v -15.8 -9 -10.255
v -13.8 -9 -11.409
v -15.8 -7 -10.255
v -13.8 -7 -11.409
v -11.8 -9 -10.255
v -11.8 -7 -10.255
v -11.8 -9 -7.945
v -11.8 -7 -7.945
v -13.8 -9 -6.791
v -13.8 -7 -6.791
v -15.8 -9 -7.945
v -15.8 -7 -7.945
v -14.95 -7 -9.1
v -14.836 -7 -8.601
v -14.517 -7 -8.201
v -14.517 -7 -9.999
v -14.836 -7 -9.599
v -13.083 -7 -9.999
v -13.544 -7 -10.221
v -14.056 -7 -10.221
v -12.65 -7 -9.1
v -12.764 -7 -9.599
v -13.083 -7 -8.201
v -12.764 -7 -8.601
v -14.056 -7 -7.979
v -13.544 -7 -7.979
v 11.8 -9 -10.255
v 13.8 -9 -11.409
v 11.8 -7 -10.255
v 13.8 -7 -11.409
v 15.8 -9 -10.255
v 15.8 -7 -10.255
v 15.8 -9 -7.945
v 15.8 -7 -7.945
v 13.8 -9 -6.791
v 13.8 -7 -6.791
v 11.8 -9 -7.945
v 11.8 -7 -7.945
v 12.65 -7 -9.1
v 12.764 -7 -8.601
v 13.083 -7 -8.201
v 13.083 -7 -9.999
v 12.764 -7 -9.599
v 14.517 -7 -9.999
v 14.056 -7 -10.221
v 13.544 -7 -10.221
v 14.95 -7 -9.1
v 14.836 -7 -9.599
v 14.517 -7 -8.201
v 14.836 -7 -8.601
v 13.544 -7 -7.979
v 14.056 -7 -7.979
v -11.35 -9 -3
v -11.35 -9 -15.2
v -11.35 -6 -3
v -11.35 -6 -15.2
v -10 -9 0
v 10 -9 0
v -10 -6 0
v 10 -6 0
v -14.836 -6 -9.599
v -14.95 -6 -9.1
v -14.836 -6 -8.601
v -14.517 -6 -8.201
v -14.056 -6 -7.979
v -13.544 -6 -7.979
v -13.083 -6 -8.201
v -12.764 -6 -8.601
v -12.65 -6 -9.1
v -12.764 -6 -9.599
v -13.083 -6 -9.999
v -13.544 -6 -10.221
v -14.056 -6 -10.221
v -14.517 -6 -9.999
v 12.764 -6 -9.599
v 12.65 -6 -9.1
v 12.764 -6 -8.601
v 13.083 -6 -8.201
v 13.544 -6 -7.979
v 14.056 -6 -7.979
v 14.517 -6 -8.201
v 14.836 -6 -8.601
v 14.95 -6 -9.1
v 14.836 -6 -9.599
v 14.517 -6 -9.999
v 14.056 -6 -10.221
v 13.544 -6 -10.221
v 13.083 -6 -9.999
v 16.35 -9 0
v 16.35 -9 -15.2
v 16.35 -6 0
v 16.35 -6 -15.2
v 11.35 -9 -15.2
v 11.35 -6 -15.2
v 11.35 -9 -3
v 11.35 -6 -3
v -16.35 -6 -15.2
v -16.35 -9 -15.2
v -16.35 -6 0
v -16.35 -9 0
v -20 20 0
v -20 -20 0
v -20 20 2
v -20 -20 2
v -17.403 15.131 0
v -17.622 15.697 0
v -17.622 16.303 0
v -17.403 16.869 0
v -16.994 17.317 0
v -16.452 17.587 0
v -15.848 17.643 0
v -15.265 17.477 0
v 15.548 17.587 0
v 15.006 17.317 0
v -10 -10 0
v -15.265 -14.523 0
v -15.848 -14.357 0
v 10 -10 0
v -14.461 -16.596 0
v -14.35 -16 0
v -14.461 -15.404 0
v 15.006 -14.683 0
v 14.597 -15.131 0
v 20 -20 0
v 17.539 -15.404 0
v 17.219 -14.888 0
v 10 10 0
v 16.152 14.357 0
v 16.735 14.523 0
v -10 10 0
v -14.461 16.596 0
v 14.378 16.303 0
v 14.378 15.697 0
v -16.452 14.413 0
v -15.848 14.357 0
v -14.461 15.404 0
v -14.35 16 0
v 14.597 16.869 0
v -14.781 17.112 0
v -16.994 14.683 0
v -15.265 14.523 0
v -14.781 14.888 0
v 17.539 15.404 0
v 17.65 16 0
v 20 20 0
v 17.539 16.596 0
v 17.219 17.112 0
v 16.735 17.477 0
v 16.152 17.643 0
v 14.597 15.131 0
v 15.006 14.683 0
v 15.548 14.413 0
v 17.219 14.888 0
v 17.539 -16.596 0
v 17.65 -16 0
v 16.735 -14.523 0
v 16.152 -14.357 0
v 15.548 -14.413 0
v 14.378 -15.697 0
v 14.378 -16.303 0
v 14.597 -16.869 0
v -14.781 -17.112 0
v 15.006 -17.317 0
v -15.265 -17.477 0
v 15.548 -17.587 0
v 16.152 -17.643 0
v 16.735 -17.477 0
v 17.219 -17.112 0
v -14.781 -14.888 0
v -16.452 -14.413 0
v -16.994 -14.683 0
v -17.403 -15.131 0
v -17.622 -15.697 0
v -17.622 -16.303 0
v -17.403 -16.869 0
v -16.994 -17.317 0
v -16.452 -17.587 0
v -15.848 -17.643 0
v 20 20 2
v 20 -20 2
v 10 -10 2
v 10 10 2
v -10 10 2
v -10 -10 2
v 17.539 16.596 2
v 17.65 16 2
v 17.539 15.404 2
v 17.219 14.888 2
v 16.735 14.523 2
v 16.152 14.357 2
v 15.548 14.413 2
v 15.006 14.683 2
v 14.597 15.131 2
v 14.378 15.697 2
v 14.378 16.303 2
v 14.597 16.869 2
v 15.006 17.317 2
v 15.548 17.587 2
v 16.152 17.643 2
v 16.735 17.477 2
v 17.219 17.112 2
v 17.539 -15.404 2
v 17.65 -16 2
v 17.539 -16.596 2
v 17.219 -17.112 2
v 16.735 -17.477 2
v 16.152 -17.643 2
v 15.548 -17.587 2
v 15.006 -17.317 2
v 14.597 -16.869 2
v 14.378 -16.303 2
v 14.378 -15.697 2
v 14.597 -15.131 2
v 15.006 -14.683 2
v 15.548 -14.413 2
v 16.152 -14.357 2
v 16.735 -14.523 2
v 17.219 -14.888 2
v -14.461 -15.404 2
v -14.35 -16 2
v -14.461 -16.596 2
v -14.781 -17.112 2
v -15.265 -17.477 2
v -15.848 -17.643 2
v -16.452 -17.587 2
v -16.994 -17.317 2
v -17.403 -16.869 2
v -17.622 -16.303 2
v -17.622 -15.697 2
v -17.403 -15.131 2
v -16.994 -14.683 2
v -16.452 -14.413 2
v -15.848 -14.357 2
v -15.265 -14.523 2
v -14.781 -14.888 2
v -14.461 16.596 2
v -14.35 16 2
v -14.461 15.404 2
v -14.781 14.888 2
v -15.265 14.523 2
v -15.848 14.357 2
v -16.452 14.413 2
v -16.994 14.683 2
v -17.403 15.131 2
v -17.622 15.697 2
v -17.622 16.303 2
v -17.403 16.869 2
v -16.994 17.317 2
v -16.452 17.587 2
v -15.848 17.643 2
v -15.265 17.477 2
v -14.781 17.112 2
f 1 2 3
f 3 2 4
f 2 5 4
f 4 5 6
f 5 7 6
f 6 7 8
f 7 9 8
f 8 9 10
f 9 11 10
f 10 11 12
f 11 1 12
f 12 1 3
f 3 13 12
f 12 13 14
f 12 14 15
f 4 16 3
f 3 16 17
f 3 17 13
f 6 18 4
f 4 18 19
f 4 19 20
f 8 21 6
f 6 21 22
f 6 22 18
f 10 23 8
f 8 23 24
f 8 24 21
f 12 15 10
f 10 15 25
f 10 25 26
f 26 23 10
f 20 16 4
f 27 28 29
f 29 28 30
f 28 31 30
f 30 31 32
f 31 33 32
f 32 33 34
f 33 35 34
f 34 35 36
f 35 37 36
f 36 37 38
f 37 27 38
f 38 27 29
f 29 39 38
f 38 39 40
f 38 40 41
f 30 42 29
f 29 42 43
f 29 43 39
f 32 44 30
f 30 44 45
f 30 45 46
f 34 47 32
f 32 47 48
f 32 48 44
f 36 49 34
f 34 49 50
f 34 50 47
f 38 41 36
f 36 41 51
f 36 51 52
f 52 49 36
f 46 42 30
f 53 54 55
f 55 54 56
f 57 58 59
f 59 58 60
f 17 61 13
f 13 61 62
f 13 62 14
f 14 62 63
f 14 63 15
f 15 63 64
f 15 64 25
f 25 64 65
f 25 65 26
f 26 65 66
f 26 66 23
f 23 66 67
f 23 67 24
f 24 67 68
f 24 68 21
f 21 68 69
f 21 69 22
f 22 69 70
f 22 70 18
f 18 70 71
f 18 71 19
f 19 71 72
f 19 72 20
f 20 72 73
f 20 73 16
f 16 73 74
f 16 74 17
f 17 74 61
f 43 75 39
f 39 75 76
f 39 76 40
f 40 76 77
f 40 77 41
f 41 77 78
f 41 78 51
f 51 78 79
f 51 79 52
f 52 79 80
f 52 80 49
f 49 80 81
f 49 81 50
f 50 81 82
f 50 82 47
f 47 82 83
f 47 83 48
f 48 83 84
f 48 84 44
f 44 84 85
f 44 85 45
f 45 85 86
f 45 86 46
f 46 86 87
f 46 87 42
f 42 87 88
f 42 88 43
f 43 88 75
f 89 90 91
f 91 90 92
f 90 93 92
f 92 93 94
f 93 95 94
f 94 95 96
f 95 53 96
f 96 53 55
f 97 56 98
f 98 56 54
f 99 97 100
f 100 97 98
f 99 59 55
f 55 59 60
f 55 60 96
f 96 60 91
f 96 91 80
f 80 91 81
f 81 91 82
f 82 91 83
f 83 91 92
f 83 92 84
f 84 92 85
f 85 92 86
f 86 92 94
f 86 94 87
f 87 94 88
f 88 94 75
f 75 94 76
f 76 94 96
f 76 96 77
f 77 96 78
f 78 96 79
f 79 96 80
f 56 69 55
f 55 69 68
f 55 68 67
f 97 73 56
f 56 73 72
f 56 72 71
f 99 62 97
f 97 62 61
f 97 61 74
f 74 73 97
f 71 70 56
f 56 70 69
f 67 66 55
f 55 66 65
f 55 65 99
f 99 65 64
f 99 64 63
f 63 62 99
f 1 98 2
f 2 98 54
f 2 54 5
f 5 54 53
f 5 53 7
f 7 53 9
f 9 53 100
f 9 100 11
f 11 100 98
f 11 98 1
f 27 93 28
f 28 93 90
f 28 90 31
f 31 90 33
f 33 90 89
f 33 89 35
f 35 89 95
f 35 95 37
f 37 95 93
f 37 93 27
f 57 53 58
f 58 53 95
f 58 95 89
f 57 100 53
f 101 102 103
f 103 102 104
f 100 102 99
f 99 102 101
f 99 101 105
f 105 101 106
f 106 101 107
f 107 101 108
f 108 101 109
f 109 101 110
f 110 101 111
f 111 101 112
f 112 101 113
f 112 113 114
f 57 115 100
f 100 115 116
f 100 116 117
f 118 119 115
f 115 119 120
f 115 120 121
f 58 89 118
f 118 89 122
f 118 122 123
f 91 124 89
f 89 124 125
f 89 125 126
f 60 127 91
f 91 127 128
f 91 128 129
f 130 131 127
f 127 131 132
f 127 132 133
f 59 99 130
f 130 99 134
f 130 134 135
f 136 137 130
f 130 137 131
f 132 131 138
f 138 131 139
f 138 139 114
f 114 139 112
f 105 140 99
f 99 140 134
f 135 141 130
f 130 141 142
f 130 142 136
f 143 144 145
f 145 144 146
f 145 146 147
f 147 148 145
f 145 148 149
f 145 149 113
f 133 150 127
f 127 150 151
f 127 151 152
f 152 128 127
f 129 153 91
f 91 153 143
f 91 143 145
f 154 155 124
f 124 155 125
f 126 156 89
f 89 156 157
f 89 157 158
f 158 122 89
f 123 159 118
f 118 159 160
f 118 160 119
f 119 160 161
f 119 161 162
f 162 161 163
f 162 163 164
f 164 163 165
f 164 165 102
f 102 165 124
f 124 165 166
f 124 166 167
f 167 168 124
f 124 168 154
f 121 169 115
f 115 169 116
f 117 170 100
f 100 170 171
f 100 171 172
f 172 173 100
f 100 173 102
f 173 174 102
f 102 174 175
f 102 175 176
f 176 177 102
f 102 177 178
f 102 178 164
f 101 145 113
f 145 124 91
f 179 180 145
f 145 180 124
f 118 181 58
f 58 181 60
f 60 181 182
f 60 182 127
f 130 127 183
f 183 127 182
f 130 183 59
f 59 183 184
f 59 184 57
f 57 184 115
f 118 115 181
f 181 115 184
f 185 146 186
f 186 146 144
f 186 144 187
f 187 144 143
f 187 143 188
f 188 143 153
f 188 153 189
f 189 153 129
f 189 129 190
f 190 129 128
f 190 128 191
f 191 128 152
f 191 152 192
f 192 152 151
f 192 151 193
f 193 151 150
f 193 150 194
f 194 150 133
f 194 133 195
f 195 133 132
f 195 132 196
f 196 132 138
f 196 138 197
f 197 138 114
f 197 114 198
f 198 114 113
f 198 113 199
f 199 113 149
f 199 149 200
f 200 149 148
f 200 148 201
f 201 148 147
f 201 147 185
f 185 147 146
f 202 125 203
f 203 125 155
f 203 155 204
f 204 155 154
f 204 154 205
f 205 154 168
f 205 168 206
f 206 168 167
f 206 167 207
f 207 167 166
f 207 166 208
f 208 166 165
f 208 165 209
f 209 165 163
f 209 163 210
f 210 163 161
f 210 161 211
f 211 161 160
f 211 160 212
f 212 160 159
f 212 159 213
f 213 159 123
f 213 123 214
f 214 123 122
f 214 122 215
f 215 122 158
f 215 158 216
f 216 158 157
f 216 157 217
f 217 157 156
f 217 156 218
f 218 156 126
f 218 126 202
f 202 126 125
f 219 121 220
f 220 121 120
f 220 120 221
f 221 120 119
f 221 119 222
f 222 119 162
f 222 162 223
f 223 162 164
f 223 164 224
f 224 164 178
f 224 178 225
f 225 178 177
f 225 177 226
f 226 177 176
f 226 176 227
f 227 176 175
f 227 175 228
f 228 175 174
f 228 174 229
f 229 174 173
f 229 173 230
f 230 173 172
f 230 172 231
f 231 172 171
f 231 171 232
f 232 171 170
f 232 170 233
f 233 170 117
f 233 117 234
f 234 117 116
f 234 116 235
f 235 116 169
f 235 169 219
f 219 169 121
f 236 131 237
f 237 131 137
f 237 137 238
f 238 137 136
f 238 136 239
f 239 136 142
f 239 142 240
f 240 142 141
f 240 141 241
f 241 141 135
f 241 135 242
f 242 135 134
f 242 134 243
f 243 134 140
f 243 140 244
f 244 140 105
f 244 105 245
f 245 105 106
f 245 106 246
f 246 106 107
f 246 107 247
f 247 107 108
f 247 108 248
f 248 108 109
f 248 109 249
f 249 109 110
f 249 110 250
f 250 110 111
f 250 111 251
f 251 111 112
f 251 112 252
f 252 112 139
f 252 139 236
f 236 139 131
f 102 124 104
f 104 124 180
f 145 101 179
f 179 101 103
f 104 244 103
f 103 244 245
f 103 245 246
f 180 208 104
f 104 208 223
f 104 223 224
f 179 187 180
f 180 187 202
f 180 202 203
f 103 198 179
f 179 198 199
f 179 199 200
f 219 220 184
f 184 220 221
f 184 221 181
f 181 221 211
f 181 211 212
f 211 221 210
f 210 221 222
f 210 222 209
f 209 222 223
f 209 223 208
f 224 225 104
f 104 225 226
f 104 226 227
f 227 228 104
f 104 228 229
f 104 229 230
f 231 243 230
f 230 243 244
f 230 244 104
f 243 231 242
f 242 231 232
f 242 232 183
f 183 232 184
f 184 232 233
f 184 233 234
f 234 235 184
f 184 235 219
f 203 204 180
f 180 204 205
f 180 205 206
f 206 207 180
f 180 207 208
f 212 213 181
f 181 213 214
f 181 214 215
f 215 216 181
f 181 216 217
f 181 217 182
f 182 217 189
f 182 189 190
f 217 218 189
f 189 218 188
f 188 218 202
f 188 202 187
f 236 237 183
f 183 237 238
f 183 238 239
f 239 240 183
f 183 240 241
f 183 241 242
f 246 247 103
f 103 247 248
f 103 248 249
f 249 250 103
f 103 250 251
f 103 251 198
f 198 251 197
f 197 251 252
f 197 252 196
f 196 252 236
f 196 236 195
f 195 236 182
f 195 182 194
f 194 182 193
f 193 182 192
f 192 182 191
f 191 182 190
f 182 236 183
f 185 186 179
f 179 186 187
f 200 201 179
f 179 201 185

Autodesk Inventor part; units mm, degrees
ref_plane "YZ Plane" through (0, 0, 0) normal (1, 0, 0) x (0, 1, 0)
ref_plane "XY Plane" through (0, 0, 0) normal (0, 0, 1) x (1, 0, 0)
sketch "草圖22" plane through (0, 0, 0) normal (0, 0, 1) x (1, 0, 0)
  line L0 (-20, 20) -> (20, 20)
  line L1 (20, 20) -> (20, -20)
  line L2 (20, -20) -> (-20, -20)
  line L3 (-20, -20) -> (-20, 20)
  line L4 (0, -12.2) -> (0, 0) projected
  line L5 (-20, 20) -> (20, -20) construction
  line L6 (20, 20) -> (-20, -20) construction
  line L7 (-16, 16) -> (16, 16) construction
  line L8 (16, 16) -> (16, -16) construction
  line L9 (16, -16) -> (-16, -16) construction
  line L10 (-16, -16) -> (-16, 16) construction
  line L11 (-16, 16) -> (16, -16) construction
  line L12 (16, 16) -> (-16, -16) construction
  circle A0 centre (-16, 16) radius 1.65
  line L13 (20, 20) -> (-10, 20)
  line L14 (-10, 20) -> (-10, -10)
  line L15 (-10, -10) -> (20, -10)
  line L16 (20, -10) -> (20, 20)
  circle A1 centre (-16, -16) radius 1.65
  circle A2 centre (16, 16) radius 1.65
  circle A3 centre (16, -16) radius 1.65
  line L17 (-10, 10) -> (10, 10)
  line L18 (10, 10) -> (10, -10)
  line L19 (10, -10) -> (-10, -10)
  line L20 (-10, -10) -> (-10, 10)
  line L21 (-20, -20) -> (20, -20)
  line L22 (20, -20) -> (20, -33.437)
  line L23 (20, -33.437) -> (-20, -33.437)
  line L24 (-20, -33.437) -> (-20, -20)
  point P0 (20, -10)
  point P1 (10, -10)
  point P2 (-10, 10)
  dimension "d118" = 40
  dimension "d119" = 16
  dimension "d120" = 3.3
  dimension "d121" = 10
  dimension "d124" = 32
  dimension "d127" = 32
extrude "擠出19" add sketch "草圖22" along normal blind 2 contours L0 L14 L15 L1 L2 L3 | L0 L1 L15 L18 L17 L14
ref_plane "工作平面5" through (0, -6, 0) normal (0, 1, 0) x (-1, 0, 0)
sketch "草圖31" plane through (0, 0, 0) normal (0, 1, 0) x (-1, 0, 0)
  line L0 (-16.35, 0) -> (16.35, 0)
  line L1 (16.35, 0) -> (16.35, -3)
  line L2 (16.35, -3) -> (-16.35, -3)
  line L3 (-16.35, -3) -> (-16.35, 0)
  line L4 (-16.35, 0) -> (16.35, -3) construction
  line L5 (16.35, 0) -> (-16.35, -3) construction
  line L6 (11.35, -3) -> (16.35, -3)
  line L7 (16.35, -3) -> (16.35, -15.2)
  line L8 (16.35, -15.2) -> (11.35, -15.2)
  line L9 (11.35, -15.2) -> (11.35, -3)
  line L10 (11.35, -3) -> (16.35, -15.2) construction
  line L11 (16.35, -3) -> (11.35, -15.2) construction
  line L12 (-11.35, -3) -> (-16.35, -3)
  line L13 (-16.35, -3) -> (-16.35, -15.2)
  line L14 (-16.35, -15.2) -> (-11.35, -15.2)
  line L15 (-11.35, -15.2) -> (-11.35, -3)
  line L16 (-11.35, -3) -> (-16.35, -15.2) construction
  line L17 (-16.35, -3) -> (-11.35, -15.2) construction
  line L18 (0, 0) -> (0, 15.4222) construction
  line L19 (-20, 0) -> (20, 0) construction
  circle A0 centre (13.8, -9.1) radius 1.15
  circle A1 centre (-13.8, -9.1) radius 1.15
  point P0 (0, -1.5)
  point P1 (13.85, -9.1)
  point P2 (-13.85, -9.1)
  dimension "d197" = 12.2
  dimension "d198" = 22.7
  dimension "d199" = 5
  dimension "d200" = 3
  dimension "d201" = 2.3
  dimension "d202" = 13.8
extrude "擠出28" add sketch "草圖31" against normal blind 3 from surface at -6
ref_plane "工作平面11" through (0, -9, 0) normal (0, 1, 0) x (-1, 0, 0)
sketch "草圖35" plane through (0, -9, 0) normal (0, 1, 0) x (-1, 0, 0)
  line L0 (-10, 0) -> (10, 0) projected
  line L1 (10, 0) -> (16.35, 0) projected
  line L2 (16.35, 0) -> (16.35, -15.2) projected
  line L3 (16.35, -15.2) -> (11.35, -15.2) projected
  line L4 (11.35, -15.2) -> (11.35, -3) projected
  line L5 (11.35, -3) -> (-11.35, -3) projected
  line L6 (-11.35, -3) -> (-11.35, -15.2) projected
  line L7 (-11.35, -15.2) -> (-16.35, -15.2) projected
  line L8 (-16.35, -15.2) -> (-16.35, 0) projected
  line L9 (-16.35, 0) -> (-10, 0) projected
  circle A0 centre (-13.8, -9.1) radius 1.15 projected
  circle A1 centre (13.8, -9.1) radius 1.15 projected
  line L10 (15.8, -10.7636) -> (15.8, -7.0453)
  line L11 (-11.8, -11.0386) -> (-11.8, -6.8072)
  line L12 (16.2407, -8.1997) -> (13.0206, -6.3406)
  line L13 (14.2407, -6.5362) -> (11.0206, -8.3953)
  line L14 (11.8, -7.4364) -> (11.8, -11.1547)
  line L15 (11.3593, -10.0003) -> (14.5794, -11.8594)
  line L16 (13.3593, -11.6638) -> (16.5794, -9.8047)
  line L17 (-11.1212, -8.3372) -> (-14.7856, -6.2216)
  line L18 (-13.1212, -6.3987) -> (-16.7856, -8.5143)
  line L19 (-15.8, -7.1614) -> (-15.8, -11.3928)
  line L20 (-16.4788, -9.8628) -> (-12.8144, -11.9784)
  line L21 (-14.4788, -11.8013) -> (-10.8144, -9.6857)
  point P0 (0, 0)
  point P1 (13.8, -11.4094)
  point P2 (15.8, -10.2547)
  point P3 (15.8, -7.9453)
  point P4 (13.8, -6.7906)
  point P5 (11.8, -7.9453)
  point P6 (11.8, -10.2547)
  point P7 (-13.8, -11.4094)
  point P8 (-11.8, -10.2547)
  point P9 (-11.8, -7.9453)
  point P10 (-13.8, -6.7906)
  point P11 (-15.8, -7.9453)
  point P12 (-15.8, -10.2547)
  dimension "d254" = 360
  dimension "d258" = 360
  dimension "d262" = 2
  dimension "d263" = 2
extrude "擠出32" cut sketch "草圖35" along normal blind 2 contours L18 L17 L11 L21 L20 L19 | L16 L15 L14 L13 L12 L10
properties part number "SG90_holder_1205"
